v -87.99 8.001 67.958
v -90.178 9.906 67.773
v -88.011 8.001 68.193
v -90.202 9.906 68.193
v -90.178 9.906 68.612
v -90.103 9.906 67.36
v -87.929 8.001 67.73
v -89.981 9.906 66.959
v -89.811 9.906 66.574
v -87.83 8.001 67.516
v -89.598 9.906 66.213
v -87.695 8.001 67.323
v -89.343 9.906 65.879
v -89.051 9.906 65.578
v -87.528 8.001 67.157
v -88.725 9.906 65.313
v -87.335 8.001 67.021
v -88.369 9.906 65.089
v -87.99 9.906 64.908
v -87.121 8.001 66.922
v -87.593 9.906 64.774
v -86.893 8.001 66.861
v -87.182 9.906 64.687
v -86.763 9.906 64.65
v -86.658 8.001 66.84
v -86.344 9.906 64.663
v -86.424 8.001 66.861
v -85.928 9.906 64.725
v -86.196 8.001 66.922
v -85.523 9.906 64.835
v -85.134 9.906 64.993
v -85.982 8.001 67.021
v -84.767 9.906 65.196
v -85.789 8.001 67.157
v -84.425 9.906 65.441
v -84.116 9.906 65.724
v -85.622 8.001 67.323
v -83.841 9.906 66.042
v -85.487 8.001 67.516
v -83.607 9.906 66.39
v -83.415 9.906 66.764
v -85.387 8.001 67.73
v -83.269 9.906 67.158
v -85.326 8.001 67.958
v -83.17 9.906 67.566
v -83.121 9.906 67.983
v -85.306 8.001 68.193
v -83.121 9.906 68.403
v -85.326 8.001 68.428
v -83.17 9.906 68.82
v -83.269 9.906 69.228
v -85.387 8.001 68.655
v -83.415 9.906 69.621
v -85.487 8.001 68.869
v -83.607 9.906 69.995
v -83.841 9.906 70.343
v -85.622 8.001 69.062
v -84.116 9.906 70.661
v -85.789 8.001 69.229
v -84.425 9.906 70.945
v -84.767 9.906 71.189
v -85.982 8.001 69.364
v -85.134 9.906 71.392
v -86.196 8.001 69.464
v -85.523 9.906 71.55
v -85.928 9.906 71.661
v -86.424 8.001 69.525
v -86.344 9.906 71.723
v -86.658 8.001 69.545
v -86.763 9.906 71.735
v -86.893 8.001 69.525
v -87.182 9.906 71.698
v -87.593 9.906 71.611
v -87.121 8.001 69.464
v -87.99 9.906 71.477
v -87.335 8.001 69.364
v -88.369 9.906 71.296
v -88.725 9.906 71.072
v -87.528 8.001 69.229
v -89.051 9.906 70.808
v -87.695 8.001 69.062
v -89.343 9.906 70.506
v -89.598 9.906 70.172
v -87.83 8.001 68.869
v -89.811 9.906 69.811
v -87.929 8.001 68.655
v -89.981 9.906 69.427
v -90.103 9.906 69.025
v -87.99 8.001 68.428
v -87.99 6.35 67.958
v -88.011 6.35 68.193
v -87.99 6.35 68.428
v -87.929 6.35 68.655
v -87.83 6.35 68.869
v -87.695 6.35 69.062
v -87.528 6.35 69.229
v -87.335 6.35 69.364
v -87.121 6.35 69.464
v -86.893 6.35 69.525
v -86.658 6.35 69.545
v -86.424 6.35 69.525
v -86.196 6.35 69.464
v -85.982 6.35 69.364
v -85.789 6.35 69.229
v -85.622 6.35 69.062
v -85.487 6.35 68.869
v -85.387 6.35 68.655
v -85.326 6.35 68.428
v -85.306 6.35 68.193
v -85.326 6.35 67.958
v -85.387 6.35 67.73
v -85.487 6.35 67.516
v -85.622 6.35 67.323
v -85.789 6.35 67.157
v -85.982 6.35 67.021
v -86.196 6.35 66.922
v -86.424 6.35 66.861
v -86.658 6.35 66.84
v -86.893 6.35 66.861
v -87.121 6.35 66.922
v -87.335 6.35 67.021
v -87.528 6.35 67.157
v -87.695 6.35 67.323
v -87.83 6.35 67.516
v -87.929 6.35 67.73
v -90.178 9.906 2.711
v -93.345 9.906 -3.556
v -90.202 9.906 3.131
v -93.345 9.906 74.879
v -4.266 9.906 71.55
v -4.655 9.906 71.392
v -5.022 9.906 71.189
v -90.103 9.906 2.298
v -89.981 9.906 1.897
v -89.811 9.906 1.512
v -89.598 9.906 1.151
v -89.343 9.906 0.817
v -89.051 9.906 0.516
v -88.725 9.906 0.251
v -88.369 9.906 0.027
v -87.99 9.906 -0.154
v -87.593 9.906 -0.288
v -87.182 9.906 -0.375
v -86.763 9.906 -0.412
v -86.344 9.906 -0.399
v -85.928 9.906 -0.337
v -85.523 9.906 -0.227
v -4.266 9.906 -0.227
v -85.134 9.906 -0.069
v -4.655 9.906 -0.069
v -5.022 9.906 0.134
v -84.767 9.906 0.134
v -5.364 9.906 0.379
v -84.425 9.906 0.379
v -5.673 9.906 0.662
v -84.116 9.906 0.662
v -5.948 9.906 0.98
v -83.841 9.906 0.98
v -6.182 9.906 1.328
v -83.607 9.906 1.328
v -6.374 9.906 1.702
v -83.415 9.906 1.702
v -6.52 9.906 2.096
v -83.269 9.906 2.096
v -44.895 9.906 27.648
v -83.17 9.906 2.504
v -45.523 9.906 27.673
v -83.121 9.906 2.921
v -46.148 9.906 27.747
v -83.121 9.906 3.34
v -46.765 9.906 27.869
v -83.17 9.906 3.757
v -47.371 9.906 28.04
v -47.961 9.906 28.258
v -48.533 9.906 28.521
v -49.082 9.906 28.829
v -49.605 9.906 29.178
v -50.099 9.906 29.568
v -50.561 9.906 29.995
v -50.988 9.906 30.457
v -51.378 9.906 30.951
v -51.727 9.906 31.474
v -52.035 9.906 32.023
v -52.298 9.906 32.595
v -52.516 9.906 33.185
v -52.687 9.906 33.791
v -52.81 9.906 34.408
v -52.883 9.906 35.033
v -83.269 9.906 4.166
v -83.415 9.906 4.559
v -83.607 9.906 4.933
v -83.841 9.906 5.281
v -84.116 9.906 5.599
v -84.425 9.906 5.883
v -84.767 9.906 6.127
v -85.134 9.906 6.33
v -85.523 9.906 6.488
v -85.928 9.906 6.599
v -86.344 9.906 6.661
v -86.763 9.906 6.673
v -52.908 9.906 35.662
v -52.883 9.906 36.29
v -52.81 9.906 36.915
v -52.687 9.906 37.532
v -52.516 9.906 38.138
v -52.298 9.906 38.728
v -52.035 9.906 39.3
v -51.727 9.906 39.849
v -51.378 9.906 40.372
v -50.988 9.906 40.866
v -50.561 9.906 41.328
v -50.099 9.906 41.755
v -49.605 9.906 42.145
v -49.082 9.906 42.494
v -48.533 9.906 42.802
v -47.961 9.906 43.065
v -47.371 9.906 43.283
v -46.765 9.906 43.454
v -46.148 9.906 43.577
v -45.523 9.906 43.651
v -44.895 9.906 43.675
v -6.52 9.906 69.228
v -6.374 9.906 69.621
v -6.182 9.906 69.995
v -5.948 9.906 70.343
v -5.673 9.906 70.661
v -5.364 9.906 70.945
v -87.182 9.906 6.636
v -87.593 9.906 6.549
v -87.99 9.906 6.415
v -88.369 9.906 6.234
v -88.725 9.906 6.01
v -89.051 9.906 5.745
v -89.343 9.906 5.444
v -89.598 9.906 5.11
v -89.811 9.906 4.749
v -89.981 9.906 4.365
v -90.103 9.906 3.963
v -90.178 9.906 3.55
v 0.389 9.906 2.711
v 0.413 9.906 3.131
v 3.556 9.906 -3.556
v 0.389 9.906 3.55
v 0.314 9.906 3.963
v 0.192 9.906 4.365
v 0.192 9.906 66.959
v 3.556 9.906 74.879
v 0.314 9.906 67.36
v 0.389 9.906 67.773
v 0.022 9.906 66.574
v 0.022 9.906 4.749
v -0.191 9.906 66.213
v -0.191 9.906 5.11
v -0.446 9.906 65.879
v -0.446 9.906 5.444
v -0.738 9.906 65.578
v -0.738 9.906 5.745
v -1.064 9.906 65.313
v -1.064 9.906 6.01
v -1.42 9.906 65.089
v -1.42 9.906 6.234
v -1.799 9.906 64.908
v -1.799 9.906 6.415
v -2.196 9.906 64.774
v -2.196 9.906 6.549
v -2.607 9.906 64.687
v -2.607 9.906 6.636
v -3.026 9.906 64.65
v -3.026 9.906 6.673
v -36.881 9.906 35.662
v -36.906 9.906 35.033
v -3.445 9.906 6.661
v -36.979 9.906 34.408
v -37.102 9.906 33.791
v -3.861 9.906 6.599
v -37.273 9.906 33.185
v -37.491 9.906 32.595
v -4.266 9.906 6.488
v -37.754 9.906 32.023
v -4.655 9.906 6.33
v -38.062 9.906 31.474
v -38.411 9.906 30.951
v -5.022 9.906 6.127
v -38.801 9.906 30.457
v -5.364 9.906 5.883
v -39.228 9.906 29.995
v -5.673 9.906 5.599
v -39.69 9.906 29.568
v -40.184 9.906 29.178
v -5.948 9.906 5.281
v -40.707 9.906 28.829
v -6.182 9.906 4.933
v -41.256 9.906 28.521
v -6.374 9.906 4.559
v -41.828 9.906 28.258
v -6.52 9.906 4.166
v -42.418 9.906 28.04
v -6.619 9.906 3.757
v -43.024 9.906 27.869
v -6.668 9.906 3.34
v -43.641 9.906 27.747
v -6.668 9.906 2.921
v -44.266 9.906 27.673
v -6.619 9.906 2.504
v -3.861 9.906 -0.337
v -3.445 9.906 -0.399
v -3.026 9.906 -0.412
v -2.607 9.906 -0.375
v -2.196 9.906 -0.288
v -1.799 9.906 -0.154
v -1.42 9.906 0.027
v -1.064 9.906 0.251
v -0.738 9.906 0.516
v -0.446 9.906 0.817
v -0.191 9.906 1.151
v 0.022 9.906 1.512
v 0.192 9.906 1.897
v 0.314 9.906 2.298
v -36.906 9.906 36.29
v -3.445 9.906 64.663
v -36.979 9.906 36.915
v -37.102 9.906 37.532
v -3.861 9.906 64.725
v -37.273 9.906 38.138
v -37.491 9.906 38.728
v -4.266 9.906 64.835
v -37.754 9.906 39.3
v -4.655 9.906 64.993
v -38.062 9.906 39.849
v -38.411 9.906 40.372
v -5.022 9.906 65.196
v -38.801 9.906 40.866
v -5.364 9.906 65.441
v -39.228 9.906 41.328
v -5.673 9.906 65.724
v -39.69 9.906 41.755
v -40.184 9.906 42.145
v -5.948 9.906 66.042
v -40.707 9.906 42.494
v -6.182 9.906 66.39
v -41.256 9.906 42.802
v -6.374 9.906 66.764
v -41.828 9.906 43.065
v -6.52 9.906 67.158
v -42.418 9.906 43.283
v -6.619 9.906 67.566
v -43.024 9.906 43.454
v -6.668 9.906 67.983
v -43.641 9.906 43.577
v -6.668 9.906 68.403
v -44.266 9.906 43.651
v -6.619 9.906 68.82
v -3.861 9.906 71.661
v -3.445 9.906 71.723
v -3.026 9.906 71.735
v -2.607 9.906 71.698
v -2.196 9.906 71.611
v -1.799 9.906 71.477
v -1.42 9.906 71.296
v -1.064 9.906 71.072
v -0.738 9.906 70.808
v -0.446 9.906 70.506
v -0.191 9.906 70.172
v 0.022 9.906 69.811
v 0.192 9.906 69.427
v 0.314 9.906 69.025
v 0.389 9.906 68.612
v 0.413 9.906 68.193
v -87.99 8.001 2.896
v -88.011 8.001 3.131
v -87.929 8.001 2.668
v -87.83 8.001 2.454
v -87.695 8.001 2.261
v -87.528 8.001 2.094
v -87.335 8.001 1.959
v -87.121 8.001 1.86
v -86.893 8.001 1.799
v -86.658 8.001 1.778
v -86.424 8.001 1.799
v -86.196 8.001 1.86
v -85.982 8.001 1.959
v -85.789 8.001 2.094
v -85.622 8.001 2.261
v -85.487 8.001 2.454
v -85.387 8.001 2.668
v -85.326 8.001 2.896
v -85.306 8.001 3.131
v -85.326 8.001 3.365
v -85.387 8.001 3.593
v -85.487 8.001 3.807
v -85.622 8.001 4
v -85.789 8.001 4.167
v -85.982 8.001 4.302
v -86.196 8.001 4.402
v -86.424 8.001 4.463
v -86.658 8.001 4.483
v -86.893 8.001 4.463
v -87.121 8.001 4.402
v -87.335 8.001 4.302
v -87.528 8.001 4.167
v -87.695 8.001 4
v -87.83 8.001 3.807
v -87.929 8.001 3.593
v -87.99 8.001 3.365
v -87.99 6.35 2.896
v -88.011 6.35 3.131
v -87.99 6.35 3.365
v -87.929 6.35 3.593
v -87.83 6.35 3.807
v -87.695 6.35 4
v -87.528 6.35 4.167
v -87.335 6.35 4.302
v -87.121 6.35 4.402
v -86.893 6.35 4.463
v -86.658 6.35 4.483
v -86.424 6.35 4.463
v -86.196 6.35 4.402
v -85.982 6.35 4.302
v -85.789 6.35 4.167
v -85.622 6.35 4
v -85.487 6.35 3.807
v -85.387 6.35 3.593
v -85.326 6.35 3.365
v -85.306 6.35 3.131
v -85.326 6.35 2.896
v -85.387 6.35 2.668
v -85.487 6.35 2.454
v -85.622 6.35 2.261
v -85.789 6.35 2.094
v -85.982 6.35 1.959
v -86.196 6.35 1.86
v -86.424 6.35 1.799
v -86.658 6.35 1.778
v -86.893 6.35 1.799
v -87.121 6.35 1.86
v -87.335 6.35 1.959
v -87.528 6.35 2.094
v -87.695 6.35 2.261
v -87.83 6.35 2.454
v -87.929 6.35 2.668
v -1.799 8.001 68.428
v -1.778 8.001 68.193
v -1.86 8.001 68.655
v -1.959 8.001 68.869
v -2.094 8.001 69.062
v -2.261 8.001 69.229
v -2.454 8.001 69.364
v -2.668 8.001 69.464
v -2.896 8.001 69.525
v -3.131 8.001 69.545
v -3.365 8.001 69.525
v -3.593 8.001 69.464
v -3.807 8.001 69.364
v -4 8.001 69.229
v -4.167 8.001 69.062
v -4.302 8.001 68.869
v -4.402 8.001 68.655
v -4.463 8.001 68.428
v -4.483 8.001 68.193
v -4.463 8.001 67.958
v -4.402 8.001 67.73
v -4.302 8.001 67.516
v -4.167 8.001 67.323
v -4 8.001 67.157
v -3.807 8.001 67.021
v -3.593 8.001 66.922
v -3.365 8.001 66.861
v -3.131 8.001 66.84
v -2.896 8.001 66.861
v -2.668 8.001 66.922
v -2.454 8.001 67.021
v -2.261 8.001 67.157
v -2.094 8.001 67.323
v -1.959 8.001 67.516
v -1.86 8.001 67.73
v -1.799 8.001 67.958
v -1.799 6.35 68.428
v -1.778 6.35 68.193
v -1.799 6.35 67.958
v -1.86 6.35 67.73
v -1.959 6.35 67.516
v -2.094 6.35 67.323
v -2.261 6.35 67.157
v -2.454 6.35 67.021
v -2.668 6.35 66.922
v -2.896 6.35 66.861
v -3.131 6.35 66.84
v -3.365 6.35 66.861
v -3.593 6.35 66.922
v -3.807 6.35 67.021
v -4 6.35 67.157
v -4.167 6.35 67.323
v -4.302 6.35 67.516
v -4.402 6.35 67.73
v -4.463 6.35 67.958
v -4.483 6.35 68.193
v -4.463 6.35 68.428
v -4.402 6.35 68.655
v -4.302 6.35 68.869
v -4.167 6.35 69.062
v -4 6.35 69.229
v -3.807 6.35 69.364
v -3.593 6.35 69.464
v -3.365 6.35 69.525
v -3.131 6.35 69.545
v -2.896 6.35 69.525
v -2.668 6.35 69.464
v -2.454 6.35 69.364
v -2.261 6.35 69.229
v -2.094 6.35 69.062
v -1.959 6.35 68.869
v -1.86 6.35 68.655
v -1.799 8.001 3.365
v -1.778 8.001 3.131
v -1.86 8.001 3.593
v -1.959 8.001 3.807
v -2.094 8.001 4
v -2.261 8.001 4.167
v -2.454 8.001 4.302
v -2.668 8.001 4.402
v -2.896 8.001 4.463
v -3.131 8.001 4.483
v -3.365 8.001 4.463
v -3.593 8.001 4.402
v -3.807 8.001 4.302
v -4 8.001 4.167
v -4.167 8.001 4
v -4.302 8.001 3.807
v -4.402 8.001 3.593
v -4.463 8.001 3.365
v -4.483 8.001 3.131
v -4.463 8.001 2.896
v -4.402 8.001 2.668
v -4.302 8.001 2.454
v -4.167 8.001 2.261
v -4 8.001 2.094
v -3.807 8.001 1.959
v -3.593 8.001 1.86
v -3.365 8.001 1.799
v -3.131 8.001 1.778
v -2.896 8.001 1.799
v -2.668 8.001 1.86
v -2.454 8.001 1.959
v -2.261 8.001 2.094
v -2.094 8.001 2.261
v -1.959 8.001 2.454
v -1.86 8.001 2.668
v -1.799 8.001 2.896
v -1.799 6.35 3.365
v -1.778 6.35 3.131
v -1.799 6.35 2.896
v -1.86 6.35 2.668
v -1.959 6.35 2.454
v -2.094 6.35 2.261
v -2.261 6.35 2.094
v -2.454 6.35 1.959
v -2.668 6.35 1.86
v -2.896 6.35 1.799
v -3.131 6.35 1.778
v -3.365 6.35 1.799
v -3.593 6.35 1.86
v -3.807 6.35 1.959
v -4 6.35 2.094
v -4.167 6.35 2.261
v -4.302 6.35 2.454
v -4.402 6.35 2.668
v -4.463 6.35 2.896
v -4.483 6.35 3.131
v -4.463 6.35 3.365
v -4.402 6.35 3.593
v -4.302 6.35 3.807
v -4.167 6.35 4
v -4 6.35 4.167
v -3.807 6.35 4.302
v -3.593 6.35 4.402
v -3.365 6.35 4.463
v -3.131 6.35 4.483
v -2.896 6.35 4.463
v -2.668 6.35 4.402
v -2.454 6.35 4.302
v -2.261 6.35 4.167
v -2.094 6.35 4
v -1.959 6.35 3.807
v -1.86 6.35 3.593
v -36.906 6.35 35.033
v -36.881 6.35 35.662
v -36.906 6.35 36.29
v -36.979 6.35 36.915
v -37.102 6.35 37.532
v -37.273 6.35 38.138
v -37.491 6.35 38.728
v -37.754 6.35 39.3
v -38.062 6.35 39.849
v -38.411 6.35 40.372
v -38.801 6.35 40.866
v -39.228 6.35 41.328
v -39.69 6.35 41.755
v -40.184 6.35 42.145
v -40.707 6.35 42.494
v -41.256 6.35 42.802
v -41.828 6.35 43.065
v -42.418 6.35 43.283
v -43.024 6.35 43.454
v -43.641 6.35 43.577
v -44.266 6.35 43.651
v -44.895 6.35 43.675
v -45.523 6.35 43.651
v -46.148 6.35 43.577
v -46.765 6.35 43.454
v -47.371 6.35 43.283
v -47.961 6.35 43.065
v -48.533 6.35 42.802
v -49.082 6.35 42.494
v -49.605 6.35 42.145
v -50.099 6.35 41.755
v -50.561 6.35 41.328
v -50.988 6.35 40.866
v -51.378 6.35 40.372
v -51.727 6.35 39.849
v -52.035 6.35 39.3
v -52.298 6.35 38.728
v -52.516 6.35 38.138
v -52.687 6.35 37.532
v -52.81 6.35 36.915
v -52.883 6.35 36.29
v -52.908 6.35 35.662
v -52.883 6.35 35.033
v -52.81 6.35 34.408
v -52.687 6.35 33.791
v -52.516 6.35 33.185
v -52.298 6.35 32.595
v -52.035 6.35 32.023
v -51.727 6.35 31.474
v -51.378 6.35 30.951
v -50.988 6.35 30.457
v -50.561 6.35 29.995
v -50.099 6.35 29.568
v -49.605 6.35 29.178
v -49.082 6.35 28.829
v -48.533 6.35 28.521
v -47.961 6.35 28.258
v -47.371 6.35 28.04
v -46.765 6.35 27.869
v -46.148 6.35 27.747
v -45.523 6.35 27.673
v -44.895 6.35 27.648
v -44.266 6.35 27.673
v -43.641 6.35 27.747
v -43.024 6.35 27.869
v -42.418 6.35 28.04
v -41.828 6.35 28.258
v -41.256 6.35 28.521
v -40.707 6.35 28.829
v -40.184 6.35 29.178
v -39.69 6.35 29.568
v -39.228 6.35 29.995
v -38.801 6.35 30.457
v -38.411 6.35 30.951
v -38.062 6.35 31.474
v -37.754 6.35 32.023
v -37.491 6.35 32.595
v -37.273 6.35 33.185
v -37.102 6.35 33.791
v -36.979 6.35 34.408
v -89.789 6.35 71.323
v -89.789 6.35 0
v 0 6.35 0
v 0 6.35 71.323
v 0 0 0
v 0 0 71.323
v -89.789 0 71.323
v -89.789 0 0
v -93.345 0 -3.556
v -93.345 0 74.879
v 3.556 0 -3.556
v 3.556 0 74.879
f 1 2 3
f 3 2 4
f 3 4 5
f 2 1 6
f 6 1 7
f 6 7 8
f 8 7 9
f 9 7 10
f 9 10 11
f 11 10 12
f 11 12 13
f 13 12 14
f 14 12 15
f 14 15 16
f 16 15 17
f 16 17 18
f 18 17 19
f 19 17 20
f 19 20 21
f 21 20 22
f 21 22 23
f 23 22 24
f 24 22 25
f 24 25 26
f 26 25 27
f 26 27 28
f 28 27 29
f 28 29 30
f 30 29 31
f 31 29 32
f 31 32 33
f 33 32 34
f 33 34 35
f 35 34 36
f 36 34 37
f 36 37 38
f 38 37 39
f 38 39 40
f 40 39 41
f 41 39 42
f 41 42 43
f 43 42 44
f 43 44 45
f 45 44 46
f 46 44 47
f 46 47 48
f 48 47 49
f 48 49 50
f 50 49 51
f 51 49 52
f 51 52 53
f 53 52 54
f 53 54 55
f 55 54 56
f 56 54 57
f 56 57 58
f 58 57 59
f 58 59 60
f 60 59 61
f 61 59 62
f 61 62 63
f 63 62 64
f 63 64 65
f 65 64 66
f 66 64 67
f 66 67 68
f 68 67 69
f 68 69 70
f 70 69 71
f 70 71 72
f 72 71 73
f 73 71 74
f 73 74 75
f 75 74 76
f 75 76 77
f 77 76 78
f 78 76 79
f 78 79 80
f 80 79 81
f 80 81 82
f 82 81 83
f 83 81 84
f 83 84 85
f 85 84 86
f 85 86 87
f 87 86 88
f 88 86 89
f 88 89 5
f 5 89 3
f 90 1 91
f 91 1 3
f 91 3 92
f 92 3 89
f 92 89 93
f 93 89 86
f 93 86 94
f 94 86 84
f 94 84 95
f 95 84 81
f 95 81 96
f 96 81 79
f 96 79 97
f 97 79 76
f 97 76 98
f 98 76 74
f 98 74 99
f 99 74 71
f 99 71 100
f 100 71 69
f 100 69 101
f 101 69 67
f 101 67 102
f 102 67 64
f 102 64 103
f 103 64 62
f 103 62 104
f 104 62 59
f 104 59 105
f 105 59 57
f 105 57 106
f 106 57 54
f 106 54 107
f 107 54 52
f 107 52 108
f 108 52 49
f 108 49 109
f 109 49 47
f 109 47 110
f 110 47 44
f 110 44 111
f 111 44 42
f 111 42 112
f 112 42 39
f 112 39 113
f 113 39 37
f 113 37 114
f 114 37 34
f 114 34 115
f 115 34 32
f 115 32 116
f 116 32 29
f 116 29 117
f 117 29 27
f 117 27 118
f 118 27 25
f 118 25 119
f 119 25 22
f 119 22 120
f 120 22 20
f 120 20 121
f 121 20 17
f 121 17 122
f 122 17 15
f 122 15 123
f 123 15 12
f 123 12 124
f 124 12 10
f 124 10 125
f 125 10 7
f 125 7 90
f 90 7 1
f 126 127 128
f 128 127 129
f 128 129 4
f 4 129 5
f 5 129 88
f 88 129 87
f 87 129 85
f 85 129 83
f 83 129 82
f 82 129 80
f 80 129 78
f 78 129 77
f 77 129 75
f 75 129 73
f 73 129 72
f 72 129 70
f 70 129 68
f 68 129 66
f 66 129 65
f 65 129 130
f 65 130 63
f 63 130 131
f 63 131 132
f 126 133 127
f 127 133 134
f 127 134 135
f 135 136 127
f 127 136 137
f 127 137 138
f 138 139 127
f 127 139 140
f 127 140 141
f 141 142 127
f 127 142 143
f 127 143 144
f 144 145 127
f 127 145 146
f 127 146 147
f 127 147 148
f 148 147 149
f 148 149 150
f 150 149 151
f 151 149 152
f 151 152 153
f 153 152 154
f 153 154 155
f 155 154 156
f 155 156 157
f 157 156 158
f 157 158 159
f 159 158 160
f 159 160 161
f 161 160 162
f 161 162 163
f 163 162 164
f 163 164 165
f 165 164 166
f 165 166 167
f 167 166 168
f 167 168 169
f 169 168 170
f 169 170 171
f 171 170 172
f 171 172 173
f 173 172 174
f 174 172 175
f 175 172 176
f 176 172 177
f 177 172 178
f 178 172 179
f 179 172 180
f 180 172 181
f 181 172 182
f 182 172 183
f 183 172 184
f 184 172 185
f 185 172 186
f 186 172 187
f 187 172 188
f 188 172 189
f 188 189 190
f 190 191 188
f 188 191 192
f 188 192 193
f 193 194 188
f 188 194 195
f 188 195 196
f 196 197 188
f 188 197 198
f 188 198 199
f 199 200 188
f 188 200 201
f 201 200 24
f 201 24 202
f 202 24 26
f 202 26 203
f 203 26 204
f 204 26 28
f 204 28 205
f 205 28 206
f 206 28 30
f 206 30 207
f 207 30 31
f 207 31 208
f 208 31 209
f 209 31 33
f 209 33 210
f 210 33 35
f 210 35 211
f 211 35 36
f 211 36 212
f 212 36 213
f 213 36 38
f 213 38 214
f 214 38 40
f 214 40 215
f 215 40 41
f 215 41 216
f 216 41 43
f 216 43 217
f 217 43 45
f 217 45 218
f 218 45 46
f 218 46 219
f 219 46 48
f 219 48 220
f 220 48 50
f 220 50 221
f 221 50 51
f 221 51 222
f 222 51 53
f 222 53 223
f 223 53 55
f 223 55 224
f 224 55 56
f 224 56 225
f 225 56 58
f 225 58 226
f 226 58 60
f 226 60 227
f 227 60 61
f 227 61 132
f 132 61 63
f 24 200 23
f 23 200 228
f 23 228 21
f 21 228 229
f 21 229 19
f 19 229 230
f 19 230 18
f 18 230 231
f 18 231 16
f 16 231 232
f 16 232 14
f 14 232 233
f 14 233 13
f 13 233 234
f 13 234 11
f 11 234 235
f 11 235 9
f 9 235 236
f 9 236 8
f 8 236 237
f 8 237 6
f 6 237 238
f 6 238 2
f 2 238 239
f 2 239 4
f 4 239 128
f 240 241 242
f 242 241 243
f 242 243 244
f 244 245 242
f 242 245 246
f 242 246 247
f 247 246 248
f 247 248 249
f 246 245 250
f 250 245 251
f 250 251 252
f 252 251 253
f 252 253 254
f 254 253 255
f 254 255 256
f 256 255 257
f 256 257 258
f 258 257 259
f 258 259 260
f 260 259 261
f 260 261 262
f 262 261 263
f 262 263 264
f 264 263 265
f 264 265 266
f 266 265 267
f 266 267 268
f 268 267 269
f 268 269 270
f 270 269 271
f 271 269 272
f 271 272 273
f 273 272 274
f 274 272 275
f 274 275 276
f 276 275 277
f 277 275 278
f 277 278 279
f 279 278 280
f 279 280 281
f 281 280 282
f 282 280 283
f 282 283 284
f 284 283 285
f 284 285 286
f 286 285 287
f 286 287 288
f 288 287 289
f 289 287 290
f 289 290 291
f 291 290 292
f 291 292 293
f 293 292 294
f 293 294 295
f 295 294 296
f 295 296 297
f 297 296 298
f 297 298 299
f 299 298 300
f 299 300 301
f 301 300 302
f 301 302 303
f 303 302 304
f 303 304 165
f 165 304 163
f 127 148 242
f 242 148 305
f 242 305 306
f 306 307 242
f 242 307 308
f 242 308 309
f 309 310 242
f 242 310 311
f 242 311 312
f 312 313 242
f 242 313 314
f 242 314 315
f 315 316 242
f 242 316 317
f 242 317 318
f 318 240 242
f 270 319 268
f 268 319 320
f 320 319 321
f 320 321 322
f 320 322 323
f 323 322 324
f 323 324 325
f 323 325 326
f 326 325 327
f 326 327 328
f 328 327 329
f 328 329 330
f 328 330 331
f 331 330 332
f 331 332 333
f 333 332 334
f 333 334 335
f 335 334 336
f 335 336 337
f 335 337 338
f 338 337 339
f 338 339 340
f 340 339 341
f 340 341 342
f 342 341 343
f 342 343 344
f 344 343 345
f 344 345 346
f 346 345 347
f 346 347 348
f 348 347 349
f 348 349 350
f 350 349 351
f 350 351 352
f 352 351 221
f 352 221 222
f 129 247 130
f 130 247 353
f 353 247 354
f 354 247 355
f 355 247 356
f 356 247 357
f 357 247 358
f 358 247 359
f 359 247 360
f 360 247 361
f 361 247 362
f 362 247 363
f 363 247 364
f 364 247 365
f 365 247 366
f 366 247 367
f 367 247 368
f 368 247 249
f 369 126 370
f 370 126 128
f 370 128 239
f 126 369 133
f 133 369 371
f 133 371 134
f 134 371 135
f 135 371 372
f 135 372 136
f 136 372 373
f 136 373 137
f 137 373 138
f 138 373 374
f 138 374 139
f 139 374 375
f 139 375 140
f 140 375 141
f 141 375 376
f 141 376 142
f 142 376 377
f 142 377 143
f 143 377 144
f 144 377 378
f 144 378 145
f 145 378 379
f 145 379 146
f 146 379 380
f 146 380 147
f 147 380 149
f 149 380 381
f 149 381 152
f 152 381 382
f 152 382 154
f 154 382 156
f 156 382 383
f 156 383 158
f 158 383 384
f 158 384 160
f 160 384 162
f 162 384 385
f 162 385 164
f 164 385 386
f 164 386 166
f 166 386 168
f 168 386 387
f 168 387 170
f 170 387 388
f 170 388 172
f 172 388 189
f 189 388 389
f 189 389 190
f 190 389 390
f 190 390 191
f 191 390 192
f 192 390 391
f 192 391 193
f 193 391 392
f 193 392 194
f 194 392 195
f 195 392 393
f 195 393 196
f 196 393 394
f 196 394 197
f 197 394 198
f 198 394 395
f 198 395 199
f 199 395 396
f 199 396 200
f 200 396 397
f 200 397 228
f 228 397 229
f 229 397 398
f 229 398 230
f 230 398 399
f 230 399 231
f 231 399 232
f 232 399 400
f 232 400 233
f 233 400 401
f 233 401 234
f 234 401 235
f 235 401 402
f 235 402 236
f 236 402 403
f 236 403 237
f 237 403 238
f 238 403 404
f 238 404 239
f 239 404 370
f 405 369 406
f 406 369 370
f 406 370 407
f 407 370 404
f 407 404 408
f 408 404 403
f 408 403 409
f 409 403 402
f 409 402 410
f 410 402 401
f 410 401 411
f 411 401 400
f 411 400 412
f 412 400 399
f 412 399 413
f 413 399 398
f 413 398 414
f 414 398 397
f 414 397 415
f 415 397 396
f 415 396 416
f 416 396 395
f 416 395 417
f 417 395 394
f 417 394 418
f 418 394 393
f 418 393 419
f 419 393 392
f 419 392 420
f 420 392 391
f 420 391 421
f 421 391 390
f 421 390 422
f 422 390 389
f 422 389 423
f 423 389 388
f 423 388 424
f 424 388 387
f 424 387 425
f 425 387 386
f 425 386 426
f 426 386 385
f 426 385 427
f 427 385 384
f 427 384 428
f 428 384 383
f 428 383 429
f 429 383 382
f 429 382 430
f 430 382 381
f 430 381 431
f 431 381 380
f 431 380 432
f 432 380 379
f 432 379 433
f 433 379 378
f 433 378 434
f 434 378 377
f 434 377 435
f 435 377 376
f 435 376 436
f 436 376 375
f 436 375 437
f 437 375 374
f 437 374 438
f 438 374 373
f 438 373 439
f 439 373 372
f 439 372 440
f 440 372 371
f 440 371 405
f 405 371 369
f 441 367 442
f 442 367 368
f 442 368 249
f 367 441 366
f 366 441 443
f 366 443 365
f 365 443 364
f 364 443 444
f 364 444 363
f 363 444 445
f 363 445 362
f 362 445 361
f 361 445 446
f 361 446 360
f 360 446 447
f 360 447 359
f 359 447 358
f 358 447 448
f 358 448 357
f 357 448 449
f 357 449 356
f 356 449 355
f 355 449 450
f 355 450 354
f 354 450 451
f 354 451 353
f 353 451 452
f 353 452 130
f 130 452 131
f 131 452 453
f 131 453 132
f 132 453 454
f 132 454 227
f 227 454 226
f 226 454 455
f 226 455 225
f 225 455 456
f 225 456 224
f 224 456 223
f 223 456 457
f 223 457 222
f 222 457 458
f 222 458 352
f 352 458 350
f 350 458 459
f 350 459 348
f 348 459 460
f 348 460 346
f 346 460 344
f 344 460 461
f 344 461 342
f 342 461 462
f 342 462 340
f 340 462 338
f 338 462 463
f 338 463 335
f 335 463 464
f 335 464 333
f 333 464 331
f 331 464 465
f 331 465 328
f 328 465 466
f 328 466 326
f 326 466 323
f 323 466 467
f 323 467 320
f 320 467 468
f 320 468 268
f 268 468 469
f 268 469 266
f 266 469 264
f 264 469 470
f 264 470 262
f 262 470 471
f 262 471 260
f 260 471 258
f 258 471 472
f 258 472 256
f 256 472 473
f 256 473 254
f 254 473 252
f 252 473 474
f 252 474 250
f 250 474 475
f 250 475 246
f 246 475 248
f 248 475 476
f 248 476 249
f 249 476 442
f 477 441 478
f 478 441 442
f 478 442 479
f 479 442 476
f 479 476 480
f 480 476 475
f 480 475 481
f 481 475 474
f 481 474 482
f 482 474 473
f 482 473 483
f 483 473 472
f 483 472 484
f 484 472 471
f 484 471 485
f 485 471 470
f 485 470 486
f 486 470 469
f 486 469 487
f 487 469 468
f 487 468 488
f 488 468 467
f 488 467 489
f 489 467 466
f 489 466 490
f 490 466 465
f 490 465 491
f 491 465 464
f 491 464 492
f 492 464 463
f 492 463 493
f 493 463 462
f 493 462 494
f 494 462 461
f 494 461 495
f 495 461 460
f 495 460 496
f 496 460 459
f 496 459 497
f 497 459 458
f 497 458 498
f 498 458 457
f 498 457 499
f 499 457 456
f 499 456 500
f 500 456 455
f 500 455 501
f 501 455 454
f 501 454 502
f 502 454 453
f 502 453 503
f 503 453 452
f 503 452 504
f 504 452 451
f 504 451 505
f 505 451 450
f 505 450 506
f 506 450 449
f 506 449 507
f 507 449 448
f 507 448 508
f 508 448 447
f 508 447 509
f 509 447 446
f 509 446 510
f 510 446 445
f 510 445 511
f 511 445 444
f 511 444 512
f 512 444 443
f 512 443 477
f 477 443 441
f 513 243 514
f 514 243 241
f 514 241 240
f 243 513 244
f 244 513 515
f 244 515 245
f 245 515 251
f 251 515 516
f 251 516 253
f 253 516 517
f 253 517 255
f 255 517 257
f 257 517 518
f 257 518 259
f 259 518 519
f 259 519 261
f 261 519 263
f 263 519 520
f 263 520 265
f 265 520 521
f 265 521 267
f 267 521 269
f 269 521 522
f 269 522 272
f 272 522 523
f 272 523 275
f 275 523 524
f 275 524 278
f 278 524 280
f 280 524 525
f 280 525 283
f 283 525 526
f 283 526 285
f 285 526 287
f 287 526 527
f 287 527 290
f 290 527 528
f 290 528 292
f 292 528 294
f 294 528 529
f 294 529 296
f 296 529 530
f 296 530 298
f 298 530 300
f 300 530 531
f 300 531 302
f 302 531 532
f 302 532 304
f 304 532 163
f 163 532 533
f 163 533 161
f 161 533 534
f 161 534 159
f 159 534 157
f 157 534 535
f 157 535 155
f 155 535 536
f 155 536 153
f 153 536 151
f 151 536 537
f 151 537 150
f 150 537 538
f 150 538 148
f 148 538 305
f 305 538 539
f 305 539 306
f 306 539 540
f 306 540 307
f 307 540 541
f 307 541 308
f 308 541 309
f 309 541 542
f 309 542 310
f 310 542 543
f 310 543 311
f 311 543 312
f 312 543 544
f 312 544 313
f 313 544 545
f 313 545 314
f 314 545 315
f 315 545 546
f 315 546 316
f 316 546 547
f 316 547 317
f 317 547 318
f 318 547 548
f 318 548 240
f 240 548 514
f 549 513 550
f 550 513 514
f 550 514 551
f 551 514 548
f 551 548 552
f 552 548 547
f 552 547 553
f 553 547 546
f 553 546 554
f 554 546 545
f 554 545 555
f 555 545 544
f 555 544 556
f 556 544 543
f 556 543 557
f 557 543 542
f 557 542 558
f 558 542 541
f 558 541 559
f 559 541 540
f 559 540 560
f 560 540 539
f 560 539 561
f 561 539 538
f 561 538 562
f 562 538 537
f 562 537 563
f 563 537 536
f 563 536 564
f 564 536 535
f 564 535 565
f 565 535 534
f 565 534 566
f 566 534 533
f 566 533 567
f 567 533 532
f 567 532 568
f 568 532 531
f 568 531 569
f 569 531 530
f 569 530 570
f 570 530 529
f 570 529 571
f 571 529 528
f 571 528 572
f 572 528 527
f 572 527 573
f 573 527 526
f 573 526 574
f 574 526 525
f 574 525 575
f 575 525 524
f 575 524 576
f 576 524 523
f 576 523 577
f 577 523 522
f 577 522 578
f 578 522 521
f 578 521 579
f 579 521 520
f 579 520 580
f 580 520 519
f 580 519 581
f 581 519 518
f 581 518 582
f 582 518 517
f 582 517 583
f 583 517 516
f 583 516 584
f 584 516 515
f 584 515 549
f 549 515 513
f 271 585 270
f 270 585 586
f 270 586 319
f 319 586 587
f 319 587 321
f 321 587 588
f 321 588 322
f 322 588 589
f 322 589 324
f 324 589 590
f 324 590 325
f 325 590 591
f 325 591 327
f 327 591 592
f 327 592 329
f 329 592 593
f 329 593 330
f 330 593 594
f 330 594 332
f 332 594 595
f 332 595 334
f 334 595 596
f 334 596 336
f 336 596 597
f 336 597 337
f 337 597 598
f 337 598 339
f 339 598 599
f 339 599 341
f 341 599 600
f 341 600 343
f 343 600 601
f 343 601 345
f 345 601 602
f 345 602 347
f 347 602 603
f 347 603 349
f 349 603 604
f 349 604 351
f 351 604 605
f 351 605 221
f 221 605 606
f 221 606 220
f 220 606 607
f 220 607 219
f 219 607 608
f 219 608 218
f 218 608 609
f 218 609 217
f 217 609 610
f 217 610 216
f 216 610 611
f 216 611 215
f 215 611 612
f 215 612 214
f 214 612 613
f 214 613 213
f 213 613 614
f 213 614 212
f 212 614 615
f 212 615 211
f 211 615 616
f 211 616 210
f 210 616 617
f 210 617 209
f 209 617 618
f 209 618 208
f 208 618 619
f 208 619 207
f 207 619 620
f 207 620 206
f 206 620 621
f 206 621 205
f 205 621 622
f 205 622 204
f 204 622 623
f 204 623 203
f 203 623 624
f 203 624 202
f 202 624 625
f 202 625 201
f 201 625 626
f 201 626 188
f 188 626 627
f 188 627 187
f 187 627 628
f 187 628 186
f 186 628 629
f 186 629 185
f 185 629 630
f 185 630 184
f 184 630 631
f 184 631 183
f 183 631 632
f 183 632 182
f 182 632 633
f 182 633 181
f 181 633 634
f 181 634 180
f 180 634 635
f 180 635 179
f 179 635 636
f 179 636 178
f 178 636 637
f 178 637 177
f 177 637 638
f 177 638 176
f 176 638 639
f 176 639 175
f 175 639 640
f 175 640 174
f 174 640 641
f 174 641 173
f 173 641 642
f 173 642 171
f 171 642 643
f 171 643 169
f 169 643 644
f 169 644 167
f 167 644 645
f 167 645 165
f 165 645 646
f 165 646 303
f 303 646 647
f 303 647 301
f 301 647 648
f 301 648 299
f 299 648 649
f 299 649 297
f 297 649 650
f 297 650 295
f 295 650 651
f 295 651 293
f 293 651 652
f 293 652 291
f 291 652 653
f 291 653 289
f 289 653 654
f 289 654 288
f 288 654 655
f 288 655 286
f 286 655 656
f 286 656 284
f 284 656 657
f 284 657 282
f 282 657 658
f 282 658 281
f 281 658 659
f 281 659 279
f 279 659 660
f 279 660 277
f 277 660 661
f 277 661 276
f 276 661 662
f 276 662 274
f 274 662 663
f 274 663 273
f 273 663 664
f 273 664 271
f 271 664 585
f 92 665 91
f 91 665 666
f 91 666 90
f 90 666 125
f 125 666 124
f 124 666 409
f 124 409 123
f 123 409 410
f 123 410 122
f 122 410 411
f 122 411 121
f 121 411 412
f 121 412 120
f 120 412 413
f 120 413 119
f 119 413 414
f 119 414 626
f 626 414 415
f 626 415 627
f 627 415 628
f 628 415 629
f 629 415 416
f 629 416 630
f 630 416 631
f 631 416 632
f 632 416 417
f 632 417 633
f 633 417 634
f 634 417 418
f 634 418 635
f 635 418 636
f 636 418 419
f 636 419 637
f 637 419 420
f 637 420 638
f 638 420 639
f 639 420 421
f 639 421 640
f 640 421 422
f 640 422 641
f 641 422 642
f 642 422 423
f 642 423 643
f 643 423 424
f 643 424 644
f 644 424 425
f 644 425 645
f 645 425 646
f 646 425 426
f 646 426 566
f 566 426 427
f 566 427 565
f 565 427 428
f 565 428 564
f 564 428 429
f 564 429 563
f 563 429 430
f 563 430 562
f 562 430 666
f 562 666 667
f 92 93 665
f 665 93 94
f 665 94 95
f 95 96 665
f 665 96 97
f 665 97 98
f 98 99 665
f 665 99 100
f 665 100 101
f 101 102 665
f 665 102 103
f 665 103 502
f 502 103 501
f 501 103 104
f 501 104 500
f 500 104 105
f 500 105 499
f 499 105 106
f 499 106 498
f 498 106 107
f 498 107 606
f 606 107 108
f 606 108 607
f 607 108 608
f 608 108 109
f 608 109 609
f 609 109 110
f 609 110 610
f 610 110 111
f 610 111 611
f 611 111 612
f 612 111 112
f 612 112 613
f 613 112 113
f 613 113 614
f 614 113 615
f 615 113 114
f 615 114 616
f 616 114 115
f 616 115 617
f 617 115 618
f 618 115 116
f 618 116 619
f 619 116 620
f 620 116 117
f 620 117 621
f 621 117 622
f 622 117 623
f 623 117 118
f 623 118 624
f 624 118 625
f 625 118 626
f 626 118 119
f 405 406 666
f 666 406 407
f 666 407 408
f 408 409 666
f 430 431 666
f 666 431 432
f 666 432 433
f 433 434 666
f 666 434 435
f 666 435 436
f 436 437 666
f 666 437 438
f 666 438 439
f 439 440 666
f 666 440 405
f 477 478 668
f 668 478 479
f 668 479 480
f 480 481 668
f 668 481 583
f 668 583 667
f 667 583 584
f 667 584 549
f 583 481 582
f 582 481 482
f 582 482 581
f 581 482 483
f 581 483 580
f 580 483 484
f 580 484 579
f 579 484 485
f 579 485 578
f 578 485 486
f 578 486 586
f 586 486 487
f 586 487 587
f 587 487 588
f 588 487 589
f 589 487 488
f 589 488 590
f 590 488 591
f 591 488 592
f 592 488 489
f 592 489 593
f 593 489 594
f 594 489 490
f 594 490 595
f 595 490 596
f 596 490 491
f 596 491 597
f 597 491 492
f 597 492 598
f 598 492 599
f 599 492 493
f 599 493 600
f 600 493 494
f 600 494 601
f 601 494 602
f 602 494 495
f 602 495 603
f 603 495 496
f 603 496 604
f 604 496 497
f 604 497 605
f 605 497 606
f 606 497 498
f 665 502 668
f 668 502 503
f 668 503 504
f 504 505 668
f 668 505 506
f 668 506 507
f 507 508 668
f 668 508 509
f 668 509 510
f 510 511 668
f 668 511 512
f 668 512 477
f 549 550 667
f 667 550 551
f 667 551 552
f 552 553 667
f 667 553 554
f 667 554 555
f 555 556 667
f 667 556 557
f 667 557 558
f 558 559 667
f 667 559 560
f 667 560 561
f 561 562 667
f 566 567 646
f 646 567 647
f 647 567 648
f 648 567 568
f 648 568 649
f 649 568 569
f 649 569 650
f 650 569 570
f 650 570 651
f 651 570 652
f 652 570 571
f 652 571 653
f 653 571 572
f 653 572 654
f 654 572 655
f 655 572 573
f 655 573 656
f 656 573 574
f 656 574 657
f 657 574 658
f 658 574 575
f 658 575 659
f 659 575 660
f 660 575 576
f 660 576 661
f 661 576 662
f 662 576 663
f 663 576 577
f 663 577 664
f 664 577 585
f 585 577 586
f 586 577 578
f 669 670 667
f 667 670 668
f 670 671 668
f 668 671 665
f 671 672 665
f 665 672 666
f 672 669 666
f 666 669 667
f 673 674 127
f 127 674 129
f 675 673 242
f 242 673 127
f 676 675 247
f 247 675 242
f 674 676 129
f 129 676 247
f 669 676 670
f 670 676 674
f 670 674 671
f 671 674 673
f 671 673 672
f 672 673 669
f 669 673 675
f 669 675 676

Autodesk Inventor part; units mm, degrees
ref_plane "YZ Plane" through (0, 0, 0) normal (1, 0, 0) x (0, 1, 0)
ref_plane "XZ Plane" through (0, 0, 0) normal (0, 1, 0) x (-1, 0, 0)
ref_plane "XY Plane" through (0, 0, 0) normal (0, 0, 1) x (1, 0, 0)
sketch "Sketch1" plane through (0, 0, 0) normal (0, 1, 0) x (-1, 0, 0)
  line L0 (0, 0) -> (89.789, 0)
  line L1 (89.789, 0) -> (89.789, 71.3232)
  line L2 (89.789, 71.3232) -> (0, 71.3232)
  line L3 (0, 71.3232) -> (0, 0)
  line L4 (93.345, 74.8792) -> (-3.556, 74.8792)
  line L5 (-3.556, 74.8792) -> (-3.556, -3.556)
  line L6 (-3.556, -3.556) -> (93.345, -3.556)
  line L7 (93.345, -3.556) -> (93.345, 74.8792)
  dimension "d0" = 89.789
  dimension "d1" = 71.3232
  dimension "d2" = 3.556
  dimension "d3" = 3.556
  dimension "d4" = 3.556
  dimension "d5" = 3.556
extrude "Extrusion1" add sketch "Sketch1" along normal blind 6.35
sketch "Sketch2" plane through (0, 6.35, 0) normal (0, 1, 0) x (1, 0, 0)
  line L0 (-93.345, 3.556) -> (3.556, 3.556)
  line L1 (3.556, 3.556) -> (3.556, -74.8792)
  line L2 (3.556, -74.8792) -> (-93.345, -74.8792)
  line L3 (-93.345, -74.8792) -> (-93.345, 3.556)
  point P0 (0, 0)
  dimension "d8" = 78.4352
  dimension "d9" = 96.901
extrude "Extrusion2" add sketch "Sketch2" along normal blind 3.556
sketch "Sketch3" plane through (0, 9.906, 0) normal (0, 1, 0) x (1, 0, 0)
  circle A0 centre (-44.8945, -35.6616) radius 8.0137
  line L0 (-93.345, 3.556) -> (-93.345, -74.8792) projected
  line L1 (3.556, 3.556) -> (-93.345, 3.556) projected
  point P0 (0, 0)
  dimension "d12" = 48.4505
  dimension "d13" = 39.2176
  dimension "d14" = 16.0274
extrude "Extrusion3" cut sketch "Sketch3" against normal blind 3.556 and the other way blind 1.016
sketch "Sketch5" plane through (-93.345, 0, -3.556) normal (-1, 0, 0) x (0, 0, 1)
  line L0 (78.4352, 0) -> (0, 0) projected
  line L1 (78.4352, 0) -> (77.1652, 0)
  line L2 (77.1652, 0) -> (77.1652, -7.62)
  line L3 (77.1652, -7.62) -> (78.4352, -7.62)
  line L4 (78.4352, -7.62) -> (78.4352, 0)
  line L5 (77.1652, -7.62) -> (76.4032, -6.5318)
  line L6 (76.4032, -6.5318) -> (76.4032, -2.54)
  line L7 (76.4032, -2.54) -> (77.1652, -2.54)
  point P0 (3.556, 0)
  dimension "d19" = 1.27
  dimension "d20" = 7.62
  dimension "d21" = 35
  dimension "d22" = 5.08
  dimension "d23" = 0.762
sketch "Sketch7" plane through (0, 9.906, 0) normal (0, 1, 0) x (1, 0, 0)
  circle A0 centre (-3.1305, -3.1305) radius 1.3525
  line L0 (0, 0) -> (0, -71.3232) projected
  line L1 (-89.789, 0) -> (0, 0) projected
  circle A1 centre (-3.1305, -3.1305) radius 3.1306
  dimension "d40" = 2.7051
  dimension "d41" = 6.2611
extrude "Extrusion6" cut sketch "Sketch7" along normal mid plane 25.4 contours A0
chamfer "Chamfer1" distance 1.905 angle 49 1 edges at (-4.4831, 9.906, 3.1305) measured on face at (-1.7824, 7.5353, 3.2394)
ref_plane "Work Plane4" through (-44.8945, 0, -3.556) normal (-1, 0, 0) x (0, 0, 1)
ref_plane "Work Plane5" through (3.556, 0, 35.6616) normal (0, 0, -1) x (-1, 0, 0)
mirror "Mirror3" about plane through (3.556, 0, 35.6616) normal (0, 0, -1) of "Extrusion6", "Chamfer1"
mirror "Mirror4" about plane through (-44.8945, 0, -3.556) normal (-1, 0, 0) of "Extrusion6", "Chamfer1", "Mirror3"
equation "\"d3\" = d2"
equation "\"d4\" = d2"
equation "\"d5\" = d2"
equation "\"d8\" = d1 + 2 * d3"
equation "\"d9\" = d0 + 2 * d3"
equation "\"d10\" = d3"
equation "\"d12\" = 0.5 * d9"
equation "\"d13\" = 0.5 * d8"
equation "\"d15\" = d3"
equation "\"d47\" = -d2 - 0.5 * d0"
equation "\"d48\" = -0.5 * d1 - d2"
properties part number "Masterboxtop"
